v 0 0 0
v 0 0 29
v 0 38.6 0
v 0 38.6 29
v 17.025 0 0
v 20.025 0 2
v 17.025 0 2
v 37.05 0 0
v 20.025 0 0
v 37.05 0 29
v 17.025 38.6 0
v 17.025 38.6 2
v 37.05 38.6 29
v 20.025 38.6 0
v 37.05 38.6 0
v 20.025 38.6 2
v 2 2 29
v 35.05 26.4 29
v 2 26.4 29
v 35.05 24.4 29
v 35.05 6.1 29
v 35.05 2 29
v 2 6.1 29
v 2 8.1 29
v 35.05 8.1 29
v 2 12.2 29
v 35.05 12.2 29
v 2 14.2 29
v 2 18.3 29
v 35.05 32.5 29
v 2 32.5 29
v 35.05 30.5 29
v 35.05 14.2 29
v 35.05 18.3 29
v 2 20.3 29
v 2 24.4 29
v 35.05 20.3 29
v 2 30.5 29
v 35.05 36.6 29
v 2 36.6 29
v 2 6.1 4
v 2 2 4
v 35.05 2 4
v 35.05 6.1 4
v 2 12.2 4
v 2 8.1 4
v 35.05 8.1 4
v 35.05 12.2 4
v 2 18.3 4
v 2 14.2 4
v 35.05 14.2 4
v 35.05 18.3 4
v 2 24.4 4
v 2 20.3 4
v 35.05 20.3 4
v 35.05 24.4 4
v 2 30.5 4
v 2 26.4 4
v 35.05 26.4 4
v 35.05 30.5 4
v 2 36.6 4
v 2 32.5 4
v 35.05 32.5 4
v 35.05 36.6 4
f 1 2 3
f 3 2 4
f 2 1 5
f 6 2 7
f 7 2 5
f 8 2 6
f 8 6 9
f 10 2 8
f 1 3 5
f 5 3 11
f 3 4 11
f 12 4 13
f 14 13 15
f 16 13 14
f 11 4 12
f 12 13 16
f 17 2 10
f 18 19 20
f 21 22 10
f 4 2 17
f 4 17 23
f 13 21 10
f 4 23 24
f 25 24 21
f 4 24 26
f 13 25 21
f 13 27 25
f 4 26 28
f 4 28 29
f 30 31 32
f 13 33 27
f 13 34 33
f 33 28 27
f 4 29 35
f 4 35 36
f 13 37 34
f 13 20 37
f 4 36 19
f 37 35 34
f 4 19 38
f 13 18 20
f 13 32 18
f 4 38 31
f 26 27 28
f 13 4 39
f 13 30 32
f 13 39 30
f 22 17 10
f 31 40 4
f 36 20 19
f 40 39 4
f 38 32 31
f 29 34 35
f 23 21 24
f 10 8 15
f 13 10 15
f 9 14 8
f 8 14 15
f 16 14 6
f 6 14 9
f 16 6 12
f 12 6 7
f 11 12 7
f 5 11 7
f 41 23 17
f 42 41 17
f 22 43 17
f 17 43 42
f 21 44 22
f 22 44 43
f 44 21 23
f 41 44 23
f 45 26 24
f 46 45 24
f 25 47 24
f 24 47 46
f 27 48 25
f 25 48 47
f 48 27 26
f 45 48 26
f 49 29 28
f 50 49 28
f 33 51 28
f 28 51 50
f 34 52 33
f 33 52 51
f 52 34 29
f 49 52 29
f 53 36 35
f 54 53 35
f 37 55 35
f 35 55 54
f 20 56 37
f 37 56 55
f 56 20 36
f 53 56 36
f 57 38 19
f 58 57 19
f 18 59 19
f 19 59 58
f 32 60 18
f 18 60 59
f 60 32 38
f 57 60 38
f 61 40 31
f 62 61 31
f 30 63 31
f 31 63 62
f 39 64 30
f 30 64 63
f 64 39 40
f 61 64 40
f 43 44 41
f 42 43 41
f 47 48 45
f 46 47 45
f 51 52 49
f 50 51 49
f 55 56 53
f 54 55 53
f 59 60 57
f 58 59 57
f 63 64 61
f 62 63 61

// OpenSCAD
//Constants
stuffz = 2/1;
fuzz = 0.3/1;
real_card_length = 34.95/1;
real_card_width = 32.75/1;
real_card_thick = 3.8/1;
card_length = real_card_length + fuzz;
card_width = real_card_width + fuzz;
card_thick = real_card_thick + fuzz;

//DS Box
box_height_addition = 25; //[10: 32]
gutter_height = 2; //[1:5]
gutter_width = 3; //[1:5]
number_of_cards = 6; //[1:20]
card_spacing = 2; //[2:7]
$fn = 20;
cube_r = 3; //[1 : 5]

box(number_of_cards);

module card(){
  cube([card_width,card_thick,card_length]);
}

module box(number){
  box_x = card_width + stuffz*2;
  box_y = card_spacing + (card_thick + card_spacing) * number;
  box_z = gutter_height+ stuffz + box_height_addition;
  card_x_trans = box_x / 2 - card_width /2;
  //%cube([box_x, box_y, box_z]);
  difference(){
    roundCornerCube(box_x,box_y,box_z,cube_r);
    //gutter
    translate([(box_x/2) - (gutter_width/2),-fuzz,-fuzz])
    cube([gutter_width, box_y + (fuzz*2),gutter_height+fuzz]);
    //cards
    for (i = [0 : number-1]){
      #translate([card_x_trans, card_spacing + (card_thick + card_spacing)*i,gutter_height+stuffz]) card();
    }
  }
}

module roundCornerCube(x,y,z,r_sphere){
 //  r = r_sphere;
 //  if (x < r) {echo ("roundCornerCube: error: x < r !!");}
 //  if (y < r) {echo ("roundCornerCube: error: y < r !!");}
 //  if (z < r) {echo ("roundCornerCube: error: z < r !!");}
	// hull(){
	// 	translate([r,y-r,z-r]) sphere(r_sphere); //1!
	// 	translate([x-r,y-r,z-r]) sphere(r_sphere); //2
	// 	translate([r,r,z-r]) sphere(r_sphere); //3
	// 	translate([x-r,r,z-r]) sphere(r_sphere); //4
	// 	translate([r,y-r,r]) sphere(r_sphere); //5!
	// 	translate([x-r,y-r,r]) sphere(r_sphere); //6
	// 	translate([r,r,r]) sphere(r_sphere); //7
	// 	translate([x-r,r,r]) sphere(r_sphere); //8
	// }
  cube([x,y,z]);
}
